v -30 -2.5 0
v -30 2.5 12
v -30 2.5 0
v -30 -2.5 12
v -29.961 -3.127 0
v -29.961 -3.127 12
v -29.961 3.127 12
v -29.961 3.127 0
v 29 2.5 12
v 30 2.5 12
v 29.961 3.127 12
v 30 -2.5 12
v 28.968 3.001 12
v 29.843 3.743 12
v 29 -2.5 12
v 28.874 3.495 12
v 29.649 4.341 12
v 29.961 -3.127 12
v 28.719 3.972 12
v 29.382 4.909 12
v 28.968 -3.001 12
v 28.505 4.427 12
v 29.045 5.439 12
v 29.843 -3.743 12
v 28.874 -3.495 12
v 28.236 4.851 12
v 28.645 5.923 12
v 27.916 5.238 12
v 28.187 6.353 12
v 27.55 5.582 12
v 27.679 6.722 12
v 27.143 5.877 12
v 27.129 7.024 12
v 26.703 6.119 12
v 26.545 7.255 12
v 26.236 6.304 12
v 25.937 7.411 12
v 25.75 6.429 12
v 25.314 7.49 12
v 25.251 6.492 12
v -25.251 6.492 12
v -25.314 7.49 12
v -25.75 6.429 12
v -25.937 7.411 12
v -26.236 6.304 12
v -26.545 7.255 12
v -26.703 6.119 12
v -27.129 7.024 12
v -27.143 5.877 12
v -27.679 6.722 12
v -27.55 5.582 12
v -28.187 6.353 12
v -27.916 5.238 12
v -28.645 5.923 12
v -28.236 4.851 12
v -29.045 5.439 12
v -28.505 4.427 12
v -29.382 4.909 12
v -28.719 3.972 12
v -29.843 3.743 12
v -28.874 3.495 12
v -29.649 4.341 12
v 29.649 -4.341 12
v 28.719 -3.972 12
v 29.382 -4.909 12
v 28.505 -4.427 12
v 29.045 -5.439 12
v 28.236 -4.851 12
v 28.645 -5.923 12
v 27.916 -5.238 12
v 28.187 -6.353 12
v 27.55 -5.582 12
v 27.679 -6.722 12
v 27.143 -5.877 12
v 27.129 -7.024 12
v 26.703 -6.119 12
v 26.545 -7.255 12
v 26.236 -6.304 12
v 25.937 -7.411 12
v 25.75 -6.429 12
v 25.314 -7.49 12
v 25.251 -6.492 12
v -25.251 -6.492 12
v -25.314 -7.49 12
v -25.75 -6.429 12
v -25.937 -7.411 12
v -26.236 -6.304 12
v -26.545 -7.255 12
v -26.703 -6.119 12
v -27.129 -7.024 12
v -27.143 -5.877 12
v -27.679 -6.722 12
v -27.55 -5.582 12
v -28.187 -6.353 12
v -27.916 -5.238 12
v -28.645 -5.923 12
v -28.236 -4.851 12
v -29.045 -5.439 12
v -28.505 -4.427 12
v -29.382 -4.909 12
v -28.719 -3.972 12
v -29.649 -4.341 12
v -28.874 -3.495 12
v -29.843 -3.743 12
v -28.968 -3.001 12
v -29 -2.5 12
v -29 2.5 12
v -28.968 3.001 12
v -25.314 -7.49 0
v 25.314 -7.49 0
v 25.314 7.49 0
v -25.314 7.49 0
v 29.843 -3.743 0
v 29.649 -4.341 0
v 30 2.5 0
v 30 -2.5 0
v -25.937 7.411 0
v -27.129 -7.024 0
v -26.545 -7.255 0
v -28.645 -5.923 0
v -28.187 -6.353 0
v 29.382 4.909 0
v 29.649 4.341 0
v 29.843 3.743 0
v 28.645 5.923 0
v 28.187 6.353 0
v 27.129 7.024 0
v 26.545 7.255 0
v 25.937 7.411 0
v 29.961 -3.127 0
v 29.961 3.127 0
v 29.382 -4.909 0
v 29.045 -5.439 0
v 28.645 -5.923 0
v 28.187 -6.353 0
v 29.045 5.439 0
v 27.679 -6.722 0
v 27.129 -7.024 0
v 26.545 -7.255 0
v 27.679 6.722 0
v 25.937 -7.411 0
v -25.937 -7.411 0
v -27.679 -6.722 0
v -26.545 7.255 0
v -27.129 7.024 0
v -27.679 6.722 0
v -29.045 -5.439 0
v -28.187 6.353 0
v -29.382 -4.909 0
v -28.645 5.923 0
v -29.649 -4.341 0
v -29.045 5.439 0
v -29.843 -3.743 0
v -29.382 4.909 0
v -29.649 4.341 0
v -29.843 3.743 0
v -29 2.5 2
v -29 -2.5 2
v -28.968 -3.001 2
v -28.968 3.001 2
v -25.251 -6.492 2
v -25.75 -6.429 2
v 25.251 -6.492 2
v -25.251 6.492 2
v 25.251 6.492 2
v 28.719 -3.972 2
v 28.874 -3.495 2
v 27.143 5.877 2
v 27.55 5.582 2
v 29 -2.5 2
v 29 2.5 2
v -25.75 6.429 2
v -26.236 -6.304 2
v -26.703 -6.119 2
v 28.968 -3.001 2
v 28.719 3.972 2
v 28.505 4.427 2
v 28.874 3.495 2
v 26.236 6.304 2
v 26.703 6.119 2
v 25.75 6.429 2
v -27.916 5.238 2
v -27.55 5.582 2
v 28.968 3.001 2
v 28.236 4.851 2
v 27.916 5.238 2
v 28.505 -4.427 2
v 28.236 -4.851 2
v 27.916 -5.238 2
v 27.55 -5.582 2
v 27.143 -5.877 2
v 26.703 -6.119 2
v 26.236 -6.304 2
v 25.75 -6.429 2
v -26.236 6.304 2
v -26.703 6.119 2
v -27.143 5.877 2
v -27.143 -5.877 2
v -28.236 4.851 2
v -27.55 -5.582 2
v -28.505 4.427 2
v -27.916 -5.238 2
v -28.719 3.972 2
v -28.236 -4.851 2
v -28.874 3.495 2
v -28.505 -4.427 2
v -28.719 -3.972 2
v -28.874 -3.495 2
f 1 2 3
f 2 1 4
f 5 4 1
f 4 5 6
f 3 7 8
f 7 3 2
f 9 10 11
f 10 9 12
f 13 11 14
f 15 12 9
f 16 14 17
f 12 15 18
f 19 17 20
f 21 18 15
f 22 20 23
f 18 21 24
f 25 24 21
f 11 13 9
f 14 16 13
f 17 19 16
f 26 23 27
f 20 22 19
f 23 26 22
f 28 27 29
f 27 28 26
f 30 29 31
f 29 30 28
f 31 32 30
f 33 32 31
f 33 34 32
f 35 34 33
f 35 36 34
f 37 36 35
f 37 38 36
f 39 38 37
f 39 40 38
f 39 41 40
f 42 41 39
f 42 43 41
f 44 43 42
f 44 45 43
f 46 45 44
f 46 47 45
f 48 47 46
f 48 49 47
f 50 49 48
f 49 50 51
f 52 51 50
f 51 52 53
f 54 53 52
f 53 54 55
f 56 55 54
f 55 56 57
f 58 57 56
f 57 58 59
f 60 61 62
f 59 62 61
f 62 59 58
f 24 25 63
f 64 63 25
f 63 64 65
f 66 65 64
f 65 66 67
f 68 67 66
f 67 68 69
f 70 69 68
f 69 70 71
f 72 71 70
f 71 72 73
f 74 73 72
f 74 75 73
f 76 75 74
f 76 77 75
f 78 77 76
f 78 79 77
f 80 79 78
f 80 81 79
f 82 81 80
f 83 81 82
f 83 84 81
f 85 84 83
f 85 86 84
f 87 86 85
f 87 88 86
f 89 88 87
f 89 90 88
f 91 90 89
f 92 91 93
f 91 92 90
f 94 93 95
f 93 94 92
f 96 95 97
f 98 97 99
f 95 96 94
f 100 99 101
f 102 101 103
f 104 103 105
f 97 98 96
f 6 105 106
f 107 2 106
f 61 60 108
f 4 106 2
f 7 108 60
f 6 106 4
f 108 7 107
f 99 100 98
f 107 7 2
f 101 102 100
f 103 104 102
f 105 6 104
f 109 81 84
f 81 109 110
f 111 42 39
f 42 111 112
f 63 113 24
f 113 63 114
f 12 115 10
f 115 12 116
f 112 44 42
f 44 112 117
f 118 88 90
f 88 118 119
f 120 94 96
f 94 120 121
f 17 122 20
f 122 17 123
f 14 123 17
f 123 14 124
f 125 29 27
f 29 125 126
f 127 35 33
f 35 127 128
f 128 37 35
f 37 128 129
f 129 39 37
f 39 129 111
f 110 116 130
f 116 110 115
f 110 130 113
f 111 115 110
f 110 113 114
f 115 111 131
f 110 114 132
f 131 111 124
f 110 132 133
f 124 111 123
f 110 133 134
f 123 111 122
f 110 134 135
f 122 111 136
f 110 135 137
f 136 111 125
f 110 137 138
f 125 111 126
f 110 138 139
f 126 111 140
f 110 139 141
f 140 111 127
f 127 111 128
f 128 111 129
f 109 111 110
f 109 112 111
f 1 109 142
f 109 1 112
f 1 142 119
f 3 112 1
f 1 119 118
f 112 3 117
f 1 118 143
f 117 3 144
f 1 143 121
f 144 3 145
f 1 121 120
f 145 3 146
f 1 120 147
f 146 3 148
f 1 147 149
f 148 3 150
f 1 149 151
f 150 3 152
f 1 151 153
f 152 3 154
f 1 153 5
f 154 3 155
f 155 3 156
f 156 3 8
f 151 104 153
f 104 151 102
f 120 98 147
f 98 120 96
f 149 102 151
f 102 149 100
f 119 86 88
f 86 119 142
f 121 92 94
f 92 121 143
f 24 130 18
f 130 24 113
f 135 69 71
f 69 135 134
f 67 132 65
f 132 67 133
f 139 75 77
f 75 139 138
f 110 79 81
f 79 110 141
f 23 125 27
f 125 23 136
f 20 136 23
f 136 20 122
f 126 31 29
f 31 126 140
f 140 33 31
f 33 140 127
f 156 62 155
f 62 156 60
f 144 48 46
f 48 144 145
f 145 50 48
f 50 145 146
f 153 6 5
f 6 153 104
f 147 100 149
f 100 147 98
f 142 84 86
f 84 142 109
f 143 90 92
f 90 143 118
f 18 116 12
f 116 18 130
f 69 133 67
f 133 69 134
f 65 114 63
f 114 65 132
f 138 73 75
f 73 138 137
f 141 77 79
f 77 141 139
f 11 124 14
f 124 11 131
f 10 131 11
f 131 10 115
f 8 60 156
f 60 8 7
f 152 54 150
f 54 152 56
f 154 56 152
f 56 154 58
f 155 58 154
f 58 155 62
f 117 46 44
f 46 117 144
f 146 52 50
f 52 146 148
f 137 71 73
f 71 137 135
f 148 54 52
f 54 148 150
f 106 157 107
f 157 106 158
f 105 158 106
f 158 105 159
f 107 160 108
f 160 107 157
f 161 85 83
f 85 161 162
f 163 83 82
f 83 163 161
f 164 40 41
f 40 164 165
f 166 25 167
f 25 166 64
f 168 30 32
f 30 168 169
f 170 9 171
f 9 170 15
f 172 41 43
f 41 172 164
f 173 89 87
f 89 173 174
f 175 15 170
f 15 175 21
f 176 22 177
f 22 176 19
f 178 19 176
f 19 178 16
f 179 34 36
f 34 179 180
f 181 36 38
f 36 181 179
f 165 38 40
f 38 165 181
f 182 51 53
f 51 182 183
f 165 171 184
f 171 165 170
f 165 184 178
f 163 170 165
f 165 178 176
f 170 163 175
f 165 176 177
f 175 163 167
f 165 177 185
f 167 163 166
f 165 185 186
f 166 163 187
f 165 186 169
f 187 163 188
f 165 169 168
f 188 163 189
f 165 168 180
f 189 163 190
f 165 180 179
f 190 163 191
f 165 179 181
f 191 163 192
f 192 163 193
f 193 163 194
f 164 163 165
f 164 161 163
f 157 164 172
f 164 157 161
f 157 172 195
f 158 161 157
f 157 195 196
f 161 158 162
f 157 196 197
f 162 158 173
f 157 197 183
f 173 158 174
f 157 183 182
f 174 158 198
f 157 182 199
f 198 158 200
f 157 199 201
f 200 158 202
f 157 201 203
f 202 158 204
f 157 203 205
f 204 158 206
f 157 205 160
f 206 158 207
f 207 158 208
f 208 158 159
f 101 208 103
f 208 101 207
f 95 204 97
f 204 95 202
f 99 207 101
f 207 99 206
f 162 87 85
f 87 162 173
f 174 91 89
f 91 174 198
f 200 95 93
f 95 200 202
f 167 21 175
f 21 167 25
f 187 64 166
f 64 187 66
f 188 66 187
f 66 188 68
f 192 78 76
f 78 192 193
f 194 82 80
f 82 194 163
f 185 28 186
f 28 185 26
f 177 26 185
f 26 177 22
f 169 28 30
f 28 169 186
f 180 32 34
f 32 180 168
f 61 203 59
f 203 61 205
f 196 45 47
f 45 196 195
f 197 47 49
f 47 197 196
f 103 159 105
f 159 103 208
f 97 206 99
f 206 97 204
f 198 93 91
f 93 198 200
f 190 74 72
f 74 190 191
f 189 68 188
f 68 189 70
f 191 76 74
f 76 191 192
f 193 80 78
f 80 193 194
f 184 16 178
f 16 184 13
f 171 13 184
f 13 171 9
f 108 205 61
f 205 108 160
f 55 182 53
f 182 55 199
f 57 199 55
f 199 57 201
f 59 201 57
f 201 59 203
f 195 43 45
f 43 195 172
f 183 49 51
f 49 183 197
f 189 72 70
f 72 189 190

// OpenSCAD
$fn = 50;


difference() {
	union() {
		hull() {
			translate(v = [-25.0000000000, 2.5000000000, 0]) {
				cylinder(h = 12, r = 5);
			}
			translate(v = [25.0000000000, 2.5000000000, 0]) {
				cylinder(h = 12, r = 5);
			}
			translate(v = [-25.0000000000, -2.5000000000, 0]) {
				cylinder(h = 12, r = 5);
			}
			translate(v = [25.0000000000, -2.5000000000, 0]) {
				cylinder(h = 12, r = 5);
			}
		}
	}
	union() {
		translate(v = [0, 0, 2]) {
			#hull() {
				translate(v = [-25.0000000000, 2.5000000000, 0]) {
					cylinder(h = 10, r = 4);
				}
				translate(v = [25.0000000000, 2.5000000000, 0]) {
					cylinder(h = 10, r = 4);
				}
				translate(v = [-25.0000000000, -2.5000000000, 0]) {
					cylinder(h = 10, r = 4);
				}
				translate(v = [25.0000000000, -2.5000000000, 0]) {
					cylinder(h = 10, r = 4);
				}
			}
		}
	}
}
